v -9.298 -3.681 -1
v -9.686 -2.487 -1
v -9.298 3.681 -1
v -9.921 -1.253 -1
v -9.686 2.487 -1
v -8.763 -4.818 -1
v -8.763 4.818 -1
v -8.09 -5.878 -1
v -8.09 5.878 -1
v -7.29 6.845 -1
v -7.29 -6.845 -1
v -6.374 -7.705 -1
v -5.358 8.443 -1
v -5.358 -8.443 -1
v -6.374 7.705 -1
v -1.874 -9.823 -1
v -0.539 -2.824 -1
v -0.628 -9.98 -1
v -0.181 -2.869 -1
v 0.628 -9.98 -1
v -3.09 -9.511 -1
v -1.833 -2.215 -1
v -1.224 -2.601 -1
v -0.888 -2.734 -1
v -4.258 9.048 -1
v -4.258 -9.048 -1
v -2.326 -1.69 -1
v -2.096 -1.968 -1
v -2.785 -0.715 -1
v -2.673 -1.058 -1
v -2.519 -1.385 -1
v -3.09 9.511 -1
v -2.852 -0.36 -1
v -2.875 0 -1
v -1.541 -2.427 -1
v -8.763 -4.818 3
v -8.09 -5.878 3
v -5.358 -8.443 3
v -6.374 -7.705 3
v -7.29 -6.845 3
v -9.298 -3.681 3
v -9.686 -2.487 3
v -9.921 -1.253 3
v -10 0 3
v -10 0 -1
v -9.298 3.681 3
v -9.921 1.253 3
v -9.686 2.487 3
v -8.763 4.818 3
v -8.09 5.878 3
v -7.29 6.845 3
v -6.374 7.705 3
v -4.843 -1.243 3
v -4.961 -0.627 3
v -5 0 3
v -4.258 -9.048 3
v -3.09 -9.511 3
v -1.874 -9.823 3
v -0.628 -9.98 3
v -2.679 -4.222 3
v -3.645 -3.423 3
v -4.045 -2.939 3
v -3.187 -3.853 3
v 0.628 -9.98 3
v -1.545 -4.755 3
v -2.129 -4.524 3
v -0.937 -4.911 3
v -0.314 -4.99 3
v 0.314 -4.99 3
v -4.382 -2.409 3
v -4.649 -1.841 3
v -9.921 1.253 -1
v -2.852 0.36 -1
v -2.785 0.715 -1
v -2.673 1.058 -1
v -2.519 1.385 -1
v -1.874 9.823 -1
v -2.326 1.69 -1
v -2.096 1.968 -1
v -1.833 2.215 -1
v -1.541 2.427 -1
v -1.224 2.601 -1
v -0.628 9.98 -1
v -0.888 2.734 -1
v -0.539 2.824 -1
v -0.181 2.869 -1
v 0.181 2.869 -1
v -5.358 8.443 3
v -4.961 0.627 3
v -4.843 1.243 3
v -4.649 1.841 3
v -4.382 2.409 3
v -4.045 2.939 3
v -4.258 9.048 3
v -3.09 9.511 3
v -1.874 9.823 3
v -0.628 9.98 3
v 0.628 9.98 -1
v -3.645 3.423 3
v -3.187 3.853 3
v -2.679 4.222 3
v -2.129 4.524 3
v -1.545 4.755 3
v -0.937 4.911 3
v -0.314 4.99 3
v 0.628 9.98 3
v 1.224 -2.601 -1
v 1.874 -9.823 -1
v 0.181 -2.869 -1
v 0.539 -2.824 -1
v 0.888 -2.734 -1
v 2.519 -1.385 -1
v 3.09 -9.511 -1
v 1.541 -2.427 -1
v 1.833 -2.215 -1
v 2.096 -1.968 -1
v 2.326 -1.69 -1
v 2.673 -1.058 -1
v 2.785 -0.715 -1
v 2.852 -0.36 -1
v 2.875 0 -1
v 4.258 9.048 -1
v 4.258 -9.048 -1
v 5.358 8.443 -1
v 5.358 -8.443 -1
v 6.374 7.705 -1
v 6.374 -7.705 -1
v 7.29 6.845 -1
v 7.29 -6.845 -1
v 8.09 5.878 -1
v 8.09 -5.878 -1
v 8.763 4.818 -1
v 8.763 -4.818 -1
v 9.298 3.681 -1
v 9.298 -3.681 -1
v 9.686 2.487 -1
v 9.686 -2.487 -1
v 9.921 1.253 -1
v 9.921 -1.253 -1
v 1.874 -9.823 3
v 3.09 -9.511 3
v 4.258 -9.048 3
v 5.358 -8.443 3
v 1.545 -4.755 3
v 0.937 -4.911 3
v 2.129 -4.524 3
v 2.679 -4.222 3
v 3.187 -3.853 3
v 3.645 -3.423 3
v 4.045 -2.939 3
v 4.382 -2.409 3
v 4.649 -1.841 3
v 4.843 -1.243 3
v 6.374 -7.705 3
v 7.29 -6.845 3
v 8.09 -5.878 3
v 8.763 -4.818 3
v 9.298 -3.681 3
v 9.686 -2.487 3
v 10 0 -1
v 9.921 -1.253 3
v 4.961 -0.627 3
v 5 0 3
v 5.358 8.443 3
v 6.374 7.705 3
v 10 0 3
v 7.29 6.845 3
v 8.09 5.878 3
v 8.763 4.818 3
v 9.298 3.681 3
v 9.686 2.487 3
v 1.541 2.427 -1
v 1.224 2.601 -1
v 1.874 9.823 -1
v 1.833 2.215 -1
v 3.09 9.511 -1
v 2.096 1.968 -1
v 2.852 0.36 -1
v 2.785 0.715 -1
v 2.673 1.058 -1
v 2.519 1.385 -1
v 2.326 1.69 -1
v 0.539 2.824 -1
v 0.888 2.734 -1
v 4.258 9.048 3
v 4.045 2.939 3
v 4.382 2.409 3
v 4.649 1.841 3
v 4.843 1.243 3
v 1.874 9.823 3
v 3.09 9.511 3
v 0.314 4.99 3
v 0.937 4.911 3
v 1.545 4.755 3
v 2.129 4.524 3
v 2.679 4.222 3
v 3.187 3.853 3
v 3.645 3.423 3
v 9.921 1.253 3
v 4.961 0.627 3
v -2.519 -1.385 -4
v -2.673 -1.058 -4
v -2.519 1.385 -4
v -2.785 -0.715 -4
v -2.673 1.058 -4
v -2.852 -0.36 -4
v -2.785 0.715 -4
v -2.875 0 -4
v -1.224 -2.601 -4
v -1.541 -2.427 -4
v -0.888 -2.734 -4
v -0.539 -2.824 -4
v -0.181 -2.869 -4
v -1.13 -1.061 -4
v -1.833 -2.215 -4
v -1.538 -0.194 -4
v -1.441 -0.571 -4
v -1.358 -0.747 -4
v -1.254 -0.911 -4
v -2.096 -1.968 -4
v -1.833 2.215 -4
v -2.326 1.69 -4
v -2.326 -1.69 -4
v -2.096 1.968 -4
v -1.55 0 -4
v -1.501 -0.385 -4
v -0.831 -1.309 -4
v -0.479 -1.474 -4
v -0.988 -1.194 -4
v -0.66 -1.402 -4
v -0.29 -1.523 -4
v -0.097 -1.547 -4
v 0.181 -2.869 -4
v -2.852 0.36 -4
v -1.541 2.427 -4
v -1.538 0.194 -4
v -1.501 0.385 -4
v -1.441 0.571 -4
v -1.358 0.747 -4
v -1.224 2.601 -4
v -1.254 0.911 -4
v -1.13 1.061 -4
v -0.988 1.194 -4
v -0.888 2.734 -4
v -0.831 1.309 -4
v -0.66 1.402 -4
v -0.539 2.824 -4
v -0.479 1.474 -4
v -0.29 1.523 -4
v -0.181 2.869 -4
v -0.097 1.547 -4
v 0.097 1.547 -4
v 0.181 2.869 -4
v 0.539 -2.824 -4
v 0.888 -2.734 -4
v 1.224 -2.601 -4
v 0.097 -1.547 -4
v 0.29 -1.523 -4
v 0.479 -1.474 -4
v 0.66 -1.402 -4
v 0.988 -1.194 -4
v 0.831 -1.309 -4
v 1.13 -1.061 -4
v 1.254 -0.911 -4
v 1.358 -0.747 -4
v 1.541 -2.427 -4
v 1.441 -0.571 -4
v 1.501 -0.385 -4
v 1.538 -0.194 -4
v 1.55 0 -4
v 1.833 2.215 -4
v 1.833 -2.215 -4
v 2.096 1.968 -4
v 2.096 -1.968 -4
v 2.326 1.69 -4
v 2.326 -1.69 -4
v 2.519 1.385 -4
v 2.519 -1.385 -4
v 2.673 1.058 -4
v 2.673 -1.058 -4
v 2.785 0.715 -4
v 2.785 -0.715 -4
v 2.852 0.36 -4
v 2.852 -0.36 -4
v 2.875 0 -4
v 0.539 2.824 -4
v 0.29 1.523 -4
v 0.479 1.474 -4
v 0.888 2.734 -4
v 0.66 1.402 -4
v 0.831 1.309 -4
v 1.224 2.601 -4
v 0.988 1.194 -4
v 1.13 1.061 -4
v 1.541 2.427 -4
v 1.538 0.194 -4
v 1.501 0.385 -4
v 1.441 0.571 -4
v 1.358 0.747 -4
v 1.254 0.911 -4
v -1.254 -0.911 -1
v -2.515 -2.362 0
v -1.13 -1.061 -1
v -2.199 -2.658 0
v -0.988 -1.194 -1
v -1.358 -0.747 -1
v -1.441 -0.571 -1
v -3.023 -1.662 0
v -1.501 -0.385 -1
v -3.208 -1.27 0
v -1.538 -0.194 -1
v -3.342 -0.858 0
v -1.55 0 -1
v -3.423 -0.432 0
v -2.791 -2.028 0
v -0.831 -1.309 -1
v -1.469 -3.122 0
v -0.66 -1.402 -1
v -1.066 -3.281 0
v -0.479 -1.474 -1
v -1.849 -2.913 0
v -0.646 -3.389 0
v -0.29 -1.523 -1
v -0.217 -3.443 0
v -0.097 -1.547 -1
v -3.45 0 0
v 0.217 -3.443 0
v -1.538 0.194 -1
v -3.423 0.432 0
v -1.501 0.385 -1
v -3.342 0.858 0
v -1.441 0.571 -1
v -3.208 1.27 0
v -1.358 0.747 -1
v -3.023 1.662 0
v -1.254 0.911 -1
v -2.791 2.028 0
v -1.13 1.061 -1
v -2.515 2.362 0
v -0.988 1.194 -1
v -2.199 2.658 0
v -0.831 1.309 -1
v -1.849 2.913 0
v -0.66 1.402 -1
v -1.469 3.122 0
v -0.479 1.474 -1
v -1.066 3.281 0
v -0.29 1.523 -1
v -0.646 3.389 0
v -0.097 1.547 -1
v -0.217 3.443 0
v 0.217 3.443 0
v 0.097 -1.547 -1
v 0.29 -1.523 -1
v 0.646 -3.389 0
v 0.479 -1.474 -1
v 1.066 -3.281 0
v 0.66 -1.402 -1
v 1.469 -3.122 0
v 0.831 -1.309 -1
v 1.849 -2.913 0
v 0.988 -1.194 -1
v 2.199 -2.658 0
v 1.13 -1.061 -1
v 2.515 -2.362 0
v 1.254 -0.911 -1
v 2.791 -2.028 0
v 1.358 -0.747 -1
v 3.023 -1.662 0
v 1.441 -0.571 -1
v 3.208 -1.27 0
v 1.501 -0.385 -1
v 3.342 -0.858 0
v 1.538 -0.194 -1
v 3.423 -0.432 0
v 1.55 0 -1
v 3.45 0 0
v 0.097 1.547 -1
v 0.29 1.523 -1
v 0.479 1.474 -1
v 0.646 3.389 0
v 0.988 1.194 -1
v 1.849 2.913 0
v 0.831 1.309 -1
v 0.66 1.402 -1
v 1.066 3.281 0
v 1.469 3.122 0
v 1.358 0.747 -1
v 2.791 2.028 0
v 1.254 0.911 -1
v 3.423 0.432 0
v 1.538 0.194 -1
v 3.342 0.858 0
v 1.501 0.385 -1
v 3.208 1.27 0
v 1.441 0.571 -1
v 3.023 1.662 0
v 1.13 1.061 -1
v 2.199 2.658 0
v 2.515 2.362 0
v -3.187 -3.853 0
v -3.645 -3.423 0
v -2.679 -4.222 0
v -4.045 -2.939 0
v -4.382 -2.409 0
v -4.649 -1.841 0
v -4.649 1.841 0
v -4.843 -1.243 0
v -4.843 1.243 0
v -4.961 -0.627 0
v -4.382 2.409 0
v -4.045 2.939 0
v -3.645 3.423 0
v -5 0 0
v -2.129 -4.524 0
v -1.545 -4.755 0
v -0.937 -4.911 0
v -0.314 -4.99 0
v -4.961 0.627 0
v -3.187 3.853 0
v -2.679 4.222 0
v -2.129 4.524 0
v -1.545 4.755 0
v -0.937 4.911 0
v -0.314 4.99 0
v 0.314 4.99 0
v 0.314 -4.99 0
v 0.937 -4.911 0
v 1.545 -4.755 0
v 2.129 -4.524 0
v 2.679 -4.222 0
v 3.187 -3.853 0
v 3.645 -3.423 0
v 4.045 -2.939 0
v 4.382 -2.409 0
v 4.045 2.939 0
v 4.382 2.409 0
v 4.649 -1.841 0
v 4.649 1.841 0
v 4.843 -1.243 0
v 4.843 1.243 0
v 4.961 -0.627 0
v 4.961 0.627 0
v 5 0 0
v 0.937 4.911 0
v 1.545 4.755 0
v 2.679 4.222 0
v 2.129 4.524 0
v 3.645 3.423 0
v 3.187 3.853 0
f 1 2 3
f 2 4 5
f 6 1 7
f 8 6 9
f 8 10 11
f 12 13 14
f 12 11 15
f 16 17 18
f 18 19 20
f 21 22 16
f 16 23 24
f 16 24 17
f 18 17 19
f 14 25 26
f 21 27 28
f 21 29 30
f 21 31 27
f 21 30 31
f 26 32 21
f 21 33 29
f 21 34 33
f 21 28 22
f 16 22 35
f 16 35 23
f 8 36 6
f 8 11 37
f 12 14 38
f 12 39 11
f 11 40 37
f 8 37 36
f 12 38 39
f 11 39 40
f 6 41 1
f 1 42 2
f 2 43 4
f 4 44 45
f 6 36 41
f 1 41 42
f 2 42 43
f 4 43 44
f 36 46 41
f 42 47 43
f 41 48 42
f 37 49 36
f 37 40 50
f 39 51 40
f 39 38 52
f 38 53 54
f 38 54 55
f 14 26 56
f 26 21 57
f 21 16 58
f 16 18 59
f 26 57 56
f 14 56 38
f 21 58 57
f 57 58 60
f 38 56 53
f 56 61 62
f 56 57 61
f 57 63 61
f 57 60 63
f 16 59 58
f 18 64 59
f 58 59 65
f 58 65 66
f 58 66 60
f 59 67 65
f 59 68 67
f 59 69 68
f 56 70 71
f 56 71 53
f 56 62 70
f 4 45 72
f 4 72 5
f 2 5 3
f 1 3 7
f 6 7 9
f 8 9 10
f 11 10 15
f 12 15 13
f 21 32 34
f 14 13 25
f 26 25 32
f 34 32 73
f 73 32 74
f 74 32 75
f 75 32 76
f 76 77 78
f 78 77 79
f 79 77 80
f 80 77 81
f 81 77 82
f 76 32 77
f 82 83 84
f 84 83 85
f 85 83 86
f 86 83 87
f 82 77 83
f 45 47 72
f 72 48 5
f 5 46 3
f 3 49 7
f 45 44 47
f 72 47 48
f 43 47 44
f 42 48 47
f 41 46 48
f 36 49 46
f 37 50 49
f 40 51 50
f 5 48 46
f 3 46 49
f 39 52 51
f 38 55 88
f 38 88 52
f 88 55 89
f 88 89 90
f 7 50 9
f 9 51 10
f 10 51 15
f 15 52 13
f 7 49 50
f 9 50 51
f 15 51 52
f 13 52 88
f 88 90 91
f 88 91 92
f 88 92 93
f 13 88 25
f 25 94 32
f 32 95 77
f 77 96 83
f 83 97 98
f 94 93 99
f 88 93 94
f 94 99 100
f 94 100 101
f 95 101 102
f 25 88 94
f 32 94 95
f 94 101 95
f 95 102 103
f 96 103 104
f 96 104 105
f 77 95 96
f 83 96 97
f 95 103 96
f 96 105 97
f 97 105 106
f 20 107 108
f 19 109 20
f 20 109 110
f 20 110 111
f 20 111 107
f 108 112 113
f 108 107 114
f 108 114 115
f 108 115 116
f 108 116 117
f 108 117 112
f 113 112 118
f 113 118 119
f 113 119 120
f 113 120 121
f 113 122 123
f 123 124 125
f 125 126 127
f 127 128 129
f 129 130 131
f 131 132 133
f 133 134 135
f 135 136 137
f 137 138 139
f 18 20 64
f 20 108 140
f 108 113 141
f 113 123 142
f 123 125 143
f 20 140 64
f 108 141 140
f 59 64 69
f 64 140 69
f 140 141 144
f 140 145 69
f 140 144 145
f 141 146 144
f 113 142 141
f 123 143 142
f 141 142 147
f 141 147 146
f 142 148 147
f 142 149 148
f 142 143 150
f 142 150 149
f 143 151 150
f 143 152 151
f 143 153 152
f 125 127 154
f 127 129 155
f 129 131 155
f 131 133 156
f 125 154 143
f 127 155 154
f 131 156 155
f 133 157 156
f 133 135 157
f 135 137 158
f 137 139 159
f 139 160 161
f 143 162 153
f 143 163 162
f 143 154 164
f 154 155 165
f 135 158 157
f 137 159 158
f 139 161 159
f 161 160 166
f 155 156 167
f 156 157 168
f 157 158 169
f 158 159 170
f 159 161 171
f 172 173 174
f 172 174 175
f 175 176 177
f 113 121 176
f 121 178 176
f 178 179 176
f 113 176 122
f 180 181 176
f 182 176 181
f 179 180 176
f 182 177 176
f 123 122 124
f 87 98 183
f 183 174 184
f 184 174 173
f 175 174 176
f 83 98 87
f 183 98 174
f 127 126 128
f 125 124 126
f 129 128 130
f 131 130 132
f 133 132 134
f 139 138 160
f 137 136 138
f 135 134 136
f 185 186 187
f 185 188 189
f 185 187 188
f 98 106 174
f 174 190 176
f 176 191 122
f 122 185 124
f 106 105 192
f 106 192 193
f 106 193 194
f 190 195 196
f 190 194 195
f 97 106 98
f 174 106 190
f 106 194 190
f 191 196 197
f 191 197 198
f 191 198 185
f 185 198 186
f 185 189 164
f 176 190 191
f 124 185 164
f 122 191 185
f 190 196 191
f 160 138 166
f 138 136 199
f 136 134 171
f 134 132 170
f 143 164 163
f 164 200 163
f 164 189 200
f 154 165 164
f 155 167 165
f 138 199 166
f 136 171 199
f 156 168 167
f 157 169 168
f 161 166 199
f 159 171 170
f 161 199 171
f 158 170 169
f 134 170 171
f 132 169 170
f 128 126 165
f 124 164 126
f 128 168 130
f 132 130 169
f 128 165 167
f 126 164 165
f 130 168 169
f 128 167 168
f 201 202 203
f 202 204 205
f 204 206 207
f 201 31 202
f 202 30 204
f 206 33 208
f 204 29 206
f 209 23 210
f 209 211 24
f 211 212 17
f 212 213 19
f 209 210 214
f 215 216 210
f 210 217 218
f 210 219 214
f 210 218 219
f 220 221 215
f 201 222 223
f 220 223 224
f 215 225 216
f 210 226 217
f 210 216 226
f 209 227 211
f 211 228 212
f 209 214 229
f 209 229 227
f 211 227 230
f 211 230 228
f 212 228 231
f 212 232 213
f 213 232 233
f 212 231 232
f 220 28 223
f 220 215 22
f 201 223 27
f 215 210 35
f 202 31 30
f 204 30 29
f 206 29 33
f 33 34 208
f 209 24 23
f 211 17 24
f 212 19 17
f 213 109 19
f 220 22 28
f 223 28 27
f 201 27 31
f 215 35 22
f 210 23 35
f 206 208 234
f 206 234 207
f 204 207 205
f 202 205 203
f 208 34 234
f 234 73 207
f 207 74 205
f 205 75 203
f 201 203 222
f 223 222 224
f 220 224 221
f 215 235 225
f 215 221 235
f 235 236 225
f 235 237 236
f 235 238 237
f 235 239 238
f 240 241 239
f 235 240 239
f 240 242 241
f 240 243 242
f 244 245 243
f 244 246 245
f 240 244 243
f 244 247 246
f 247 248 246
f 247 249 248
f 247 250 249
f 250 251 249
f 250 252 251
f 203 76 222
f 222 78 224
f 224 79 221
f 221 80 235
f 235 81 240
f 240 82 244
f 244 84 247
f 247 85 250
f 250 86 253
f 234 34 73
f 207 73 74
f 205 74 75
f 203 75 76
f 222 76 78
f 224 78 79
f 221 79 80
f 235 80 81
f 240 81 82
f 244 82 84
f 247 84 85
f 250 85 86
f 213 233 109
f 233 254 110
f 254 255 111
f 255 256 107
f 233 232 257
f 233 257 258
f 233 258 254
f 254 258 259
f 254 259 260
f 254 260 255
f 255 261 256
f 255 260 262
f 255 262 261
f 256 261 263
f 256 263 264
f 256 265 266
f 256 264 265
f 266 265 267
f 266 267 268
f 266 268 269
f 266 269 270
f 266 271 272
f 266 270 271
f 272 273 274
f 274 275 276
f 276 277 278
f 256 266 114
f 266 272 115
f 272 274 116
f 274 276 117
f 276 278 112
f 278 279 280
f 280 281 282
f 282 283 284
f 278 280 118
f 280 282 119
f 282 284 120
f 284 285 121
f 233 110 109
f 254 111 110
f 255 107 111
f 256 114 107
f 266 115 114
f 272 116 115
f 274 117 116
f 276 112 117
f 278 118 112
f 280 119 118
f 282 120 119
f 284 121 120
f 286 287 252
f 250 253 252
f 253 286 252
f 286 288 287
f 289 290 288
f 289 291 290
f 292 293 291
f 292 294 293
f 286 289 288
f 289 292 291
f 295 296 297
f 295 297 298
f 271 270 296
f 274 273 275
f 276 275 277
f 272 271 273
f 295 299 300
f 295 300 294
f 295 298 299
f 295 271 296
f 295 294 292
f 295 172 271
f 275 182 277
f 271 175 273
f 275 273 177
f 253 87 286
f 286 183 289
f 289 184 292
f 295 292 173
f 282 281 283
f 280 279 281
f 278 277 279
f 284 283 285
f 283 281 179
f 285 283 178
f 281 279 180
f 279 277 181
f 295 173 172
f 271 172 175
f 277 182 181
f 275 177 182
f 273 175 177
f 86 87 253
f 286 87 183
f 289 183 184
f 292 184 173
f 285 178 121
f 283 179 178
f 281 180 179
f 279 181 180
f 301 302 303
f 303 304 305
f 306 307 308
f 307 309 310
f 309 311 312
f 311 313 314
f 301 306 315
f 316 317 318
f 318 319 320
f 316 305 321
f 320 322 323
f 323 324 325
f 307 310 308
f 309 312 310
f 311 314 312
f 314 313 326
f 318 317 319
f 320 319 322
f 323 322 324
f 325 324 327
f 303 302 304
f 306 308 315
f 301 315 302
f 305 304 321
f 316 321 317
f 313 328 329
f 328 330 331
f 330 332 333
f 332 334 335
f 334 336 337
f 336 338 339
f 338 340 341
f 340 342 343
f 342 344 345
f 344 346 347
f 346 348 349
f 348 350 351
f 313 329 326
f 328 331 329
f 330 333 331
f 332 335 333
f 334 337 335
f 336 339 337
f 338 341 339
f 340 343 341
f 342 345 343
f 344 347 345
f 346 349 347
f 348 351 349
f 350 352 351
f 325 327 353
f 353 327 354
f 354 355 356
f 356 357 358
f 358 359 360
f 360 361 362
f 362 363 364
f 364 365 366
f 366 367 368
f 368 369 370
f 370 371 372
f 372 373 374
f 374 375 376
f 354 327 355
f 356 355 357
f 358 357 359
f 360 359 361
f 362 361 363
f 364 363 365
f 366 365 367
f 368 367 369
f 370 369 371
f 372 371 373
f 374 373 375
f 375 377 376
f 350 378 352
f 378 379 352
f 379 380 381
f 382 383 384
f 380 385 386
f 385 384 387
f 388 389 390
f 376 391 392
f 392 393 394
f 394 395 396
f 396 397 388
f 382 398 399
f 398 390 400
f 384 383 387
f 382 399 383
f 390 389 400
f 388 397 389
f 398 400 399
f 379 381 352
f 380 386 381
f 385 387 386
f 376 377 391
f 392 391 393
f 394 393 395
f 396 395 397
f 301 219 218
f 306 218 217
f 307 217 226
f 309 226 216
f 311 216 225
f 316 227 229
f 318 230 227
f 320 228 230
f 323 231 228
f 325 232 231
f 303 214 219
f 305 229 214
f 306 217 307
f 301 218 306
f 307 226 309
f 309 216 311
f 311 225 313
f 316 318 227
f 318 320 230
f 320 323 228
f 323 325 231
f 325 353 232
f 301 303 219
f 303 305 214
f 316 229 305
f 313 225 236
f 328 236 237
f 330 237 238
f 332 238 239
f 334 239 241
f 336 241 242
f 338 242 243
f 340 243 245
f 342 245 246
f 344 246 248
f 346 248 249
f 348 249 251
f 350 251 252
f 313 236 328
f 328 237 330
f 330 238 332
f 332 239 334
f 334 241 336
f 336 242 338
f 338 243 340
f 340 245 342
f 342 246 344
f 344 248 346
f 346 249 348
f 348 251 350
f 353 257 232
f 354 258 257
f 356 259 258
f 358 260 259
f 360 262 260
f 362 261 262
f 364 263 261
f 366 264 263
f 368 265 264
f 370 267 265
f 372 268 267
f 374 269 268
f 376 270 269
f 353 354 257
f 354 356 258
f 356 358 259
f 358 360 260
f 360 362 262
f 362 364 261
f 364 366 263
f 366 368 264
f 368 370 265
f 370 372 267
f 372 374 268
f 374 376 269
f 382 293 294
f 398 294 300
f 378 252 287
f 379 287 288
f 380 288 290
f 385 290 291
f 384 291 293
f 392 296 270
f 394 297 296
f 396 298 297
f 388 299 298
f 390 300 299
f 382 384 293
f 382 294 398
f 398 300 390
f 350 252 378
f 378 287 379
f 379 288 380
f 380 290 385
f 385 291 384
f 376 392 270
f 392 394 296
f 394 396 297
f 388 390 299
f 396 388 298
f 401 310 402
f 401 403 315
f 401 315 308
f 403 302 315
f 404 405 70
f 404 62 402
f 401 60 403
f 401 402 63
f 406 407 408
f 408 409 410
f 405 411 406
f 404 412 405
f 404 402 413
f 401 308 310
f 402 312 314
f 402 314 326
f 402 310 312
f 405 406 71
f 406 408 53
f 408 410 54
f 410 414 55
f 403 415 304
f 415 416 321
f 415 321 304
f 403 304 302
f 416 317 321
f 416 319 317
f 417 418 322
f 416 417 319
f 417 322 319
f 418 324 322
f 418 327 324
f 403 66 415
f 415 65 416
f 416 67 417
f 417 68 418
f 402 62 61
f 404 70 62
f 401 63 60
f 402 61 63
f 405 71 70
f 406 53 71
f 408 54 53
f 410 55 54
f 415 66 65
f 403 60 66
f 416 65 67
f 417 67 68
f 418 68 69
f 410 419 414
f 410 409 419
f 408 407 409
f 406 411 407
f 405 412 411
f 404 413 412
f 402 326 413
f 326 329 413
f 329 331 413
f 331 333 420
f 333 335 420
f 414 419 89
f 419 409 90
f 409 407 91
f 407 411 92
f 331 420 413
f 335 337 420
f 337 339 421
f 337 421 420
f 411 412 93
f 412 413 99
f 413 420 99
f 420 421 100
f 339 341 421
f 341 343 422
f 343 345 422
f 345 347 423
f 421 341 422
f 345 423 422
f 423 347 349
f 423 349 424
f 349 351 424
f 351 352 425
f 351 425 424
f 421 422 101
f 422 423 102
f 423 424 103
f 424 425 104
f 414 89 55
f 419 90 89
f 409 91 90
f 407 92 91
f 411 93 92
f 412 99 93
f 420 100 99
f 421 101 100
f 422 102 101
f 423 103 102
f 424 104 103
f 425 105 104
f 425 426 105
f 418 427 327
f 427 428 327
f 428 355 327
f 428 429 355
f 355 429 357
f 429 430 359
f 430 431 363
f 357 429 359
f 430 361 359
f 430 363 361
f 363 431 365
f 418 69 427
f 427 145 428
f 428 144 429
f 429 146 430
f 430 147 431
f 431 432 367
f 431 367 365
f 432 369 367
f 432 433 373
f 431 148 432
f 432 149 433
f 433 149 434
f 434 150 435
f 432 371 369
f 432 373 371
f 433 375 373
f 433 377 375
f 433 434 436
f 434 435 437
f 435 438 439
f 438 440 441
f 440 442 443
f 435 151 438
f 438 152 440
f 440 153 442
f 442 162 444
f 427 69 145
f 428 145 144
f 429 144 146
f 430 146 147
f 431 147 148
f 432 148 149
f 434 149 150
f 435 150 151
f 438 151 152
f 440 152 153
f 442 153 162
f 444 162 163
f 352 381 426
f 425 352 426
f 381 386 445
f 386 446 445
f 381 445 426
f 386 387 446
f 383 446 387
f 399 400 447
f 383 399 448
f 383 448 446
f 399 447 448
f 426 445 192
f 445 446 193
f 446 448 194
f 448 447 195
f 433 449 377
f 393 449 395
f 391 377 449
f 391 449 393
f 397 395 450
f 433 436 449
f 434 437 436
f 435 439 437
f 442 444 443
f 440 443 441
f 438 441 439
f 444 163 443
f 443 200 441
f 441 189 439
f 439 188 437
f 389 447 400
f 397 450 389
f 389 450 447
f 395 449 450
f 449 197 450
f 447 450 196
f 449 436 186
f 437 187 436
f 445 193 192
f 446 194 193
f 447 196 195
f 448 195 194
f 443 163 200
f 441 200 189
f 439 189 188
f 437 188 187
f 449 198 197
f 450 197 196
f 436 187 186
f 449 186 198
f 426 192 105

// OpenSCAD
$fn = 50;

difference() {
	union() {
		translate(v = [0, 0, -1.0]) {
			cylinder(h = 4.0, r = 10.0);
		}
		#translate(v = [0, 0, -4.0]) {
			cylinder(h = 4.0, r = 2.875);
		}
	}
	union() {
		translate(v = [0, 0, 0]) {
			rotate(a = [0, 0, 0]) {
				difference() {
					union() {
						translate(v = [0, 0, -4.0]) {
							cylinder(h = 4.0, r = 1.25);
						}
						translate(v = [0, 0, -1.0]) {
							cylinder(h = 1.0, r1 = 1.55, r2 = 3.45);
						}
						translate(v = [0, 0, -4.0]) {
							cylinder(h = 4.0, r = 1.55);
						}
						translate(v = [0, 0, -4.0]) {
							cylinder(h = 4.0, r = 1.25);
						}
					}
					union();
				}
			}
		}
		#cylinder(h = 3, r = 5.0);
	}
}
